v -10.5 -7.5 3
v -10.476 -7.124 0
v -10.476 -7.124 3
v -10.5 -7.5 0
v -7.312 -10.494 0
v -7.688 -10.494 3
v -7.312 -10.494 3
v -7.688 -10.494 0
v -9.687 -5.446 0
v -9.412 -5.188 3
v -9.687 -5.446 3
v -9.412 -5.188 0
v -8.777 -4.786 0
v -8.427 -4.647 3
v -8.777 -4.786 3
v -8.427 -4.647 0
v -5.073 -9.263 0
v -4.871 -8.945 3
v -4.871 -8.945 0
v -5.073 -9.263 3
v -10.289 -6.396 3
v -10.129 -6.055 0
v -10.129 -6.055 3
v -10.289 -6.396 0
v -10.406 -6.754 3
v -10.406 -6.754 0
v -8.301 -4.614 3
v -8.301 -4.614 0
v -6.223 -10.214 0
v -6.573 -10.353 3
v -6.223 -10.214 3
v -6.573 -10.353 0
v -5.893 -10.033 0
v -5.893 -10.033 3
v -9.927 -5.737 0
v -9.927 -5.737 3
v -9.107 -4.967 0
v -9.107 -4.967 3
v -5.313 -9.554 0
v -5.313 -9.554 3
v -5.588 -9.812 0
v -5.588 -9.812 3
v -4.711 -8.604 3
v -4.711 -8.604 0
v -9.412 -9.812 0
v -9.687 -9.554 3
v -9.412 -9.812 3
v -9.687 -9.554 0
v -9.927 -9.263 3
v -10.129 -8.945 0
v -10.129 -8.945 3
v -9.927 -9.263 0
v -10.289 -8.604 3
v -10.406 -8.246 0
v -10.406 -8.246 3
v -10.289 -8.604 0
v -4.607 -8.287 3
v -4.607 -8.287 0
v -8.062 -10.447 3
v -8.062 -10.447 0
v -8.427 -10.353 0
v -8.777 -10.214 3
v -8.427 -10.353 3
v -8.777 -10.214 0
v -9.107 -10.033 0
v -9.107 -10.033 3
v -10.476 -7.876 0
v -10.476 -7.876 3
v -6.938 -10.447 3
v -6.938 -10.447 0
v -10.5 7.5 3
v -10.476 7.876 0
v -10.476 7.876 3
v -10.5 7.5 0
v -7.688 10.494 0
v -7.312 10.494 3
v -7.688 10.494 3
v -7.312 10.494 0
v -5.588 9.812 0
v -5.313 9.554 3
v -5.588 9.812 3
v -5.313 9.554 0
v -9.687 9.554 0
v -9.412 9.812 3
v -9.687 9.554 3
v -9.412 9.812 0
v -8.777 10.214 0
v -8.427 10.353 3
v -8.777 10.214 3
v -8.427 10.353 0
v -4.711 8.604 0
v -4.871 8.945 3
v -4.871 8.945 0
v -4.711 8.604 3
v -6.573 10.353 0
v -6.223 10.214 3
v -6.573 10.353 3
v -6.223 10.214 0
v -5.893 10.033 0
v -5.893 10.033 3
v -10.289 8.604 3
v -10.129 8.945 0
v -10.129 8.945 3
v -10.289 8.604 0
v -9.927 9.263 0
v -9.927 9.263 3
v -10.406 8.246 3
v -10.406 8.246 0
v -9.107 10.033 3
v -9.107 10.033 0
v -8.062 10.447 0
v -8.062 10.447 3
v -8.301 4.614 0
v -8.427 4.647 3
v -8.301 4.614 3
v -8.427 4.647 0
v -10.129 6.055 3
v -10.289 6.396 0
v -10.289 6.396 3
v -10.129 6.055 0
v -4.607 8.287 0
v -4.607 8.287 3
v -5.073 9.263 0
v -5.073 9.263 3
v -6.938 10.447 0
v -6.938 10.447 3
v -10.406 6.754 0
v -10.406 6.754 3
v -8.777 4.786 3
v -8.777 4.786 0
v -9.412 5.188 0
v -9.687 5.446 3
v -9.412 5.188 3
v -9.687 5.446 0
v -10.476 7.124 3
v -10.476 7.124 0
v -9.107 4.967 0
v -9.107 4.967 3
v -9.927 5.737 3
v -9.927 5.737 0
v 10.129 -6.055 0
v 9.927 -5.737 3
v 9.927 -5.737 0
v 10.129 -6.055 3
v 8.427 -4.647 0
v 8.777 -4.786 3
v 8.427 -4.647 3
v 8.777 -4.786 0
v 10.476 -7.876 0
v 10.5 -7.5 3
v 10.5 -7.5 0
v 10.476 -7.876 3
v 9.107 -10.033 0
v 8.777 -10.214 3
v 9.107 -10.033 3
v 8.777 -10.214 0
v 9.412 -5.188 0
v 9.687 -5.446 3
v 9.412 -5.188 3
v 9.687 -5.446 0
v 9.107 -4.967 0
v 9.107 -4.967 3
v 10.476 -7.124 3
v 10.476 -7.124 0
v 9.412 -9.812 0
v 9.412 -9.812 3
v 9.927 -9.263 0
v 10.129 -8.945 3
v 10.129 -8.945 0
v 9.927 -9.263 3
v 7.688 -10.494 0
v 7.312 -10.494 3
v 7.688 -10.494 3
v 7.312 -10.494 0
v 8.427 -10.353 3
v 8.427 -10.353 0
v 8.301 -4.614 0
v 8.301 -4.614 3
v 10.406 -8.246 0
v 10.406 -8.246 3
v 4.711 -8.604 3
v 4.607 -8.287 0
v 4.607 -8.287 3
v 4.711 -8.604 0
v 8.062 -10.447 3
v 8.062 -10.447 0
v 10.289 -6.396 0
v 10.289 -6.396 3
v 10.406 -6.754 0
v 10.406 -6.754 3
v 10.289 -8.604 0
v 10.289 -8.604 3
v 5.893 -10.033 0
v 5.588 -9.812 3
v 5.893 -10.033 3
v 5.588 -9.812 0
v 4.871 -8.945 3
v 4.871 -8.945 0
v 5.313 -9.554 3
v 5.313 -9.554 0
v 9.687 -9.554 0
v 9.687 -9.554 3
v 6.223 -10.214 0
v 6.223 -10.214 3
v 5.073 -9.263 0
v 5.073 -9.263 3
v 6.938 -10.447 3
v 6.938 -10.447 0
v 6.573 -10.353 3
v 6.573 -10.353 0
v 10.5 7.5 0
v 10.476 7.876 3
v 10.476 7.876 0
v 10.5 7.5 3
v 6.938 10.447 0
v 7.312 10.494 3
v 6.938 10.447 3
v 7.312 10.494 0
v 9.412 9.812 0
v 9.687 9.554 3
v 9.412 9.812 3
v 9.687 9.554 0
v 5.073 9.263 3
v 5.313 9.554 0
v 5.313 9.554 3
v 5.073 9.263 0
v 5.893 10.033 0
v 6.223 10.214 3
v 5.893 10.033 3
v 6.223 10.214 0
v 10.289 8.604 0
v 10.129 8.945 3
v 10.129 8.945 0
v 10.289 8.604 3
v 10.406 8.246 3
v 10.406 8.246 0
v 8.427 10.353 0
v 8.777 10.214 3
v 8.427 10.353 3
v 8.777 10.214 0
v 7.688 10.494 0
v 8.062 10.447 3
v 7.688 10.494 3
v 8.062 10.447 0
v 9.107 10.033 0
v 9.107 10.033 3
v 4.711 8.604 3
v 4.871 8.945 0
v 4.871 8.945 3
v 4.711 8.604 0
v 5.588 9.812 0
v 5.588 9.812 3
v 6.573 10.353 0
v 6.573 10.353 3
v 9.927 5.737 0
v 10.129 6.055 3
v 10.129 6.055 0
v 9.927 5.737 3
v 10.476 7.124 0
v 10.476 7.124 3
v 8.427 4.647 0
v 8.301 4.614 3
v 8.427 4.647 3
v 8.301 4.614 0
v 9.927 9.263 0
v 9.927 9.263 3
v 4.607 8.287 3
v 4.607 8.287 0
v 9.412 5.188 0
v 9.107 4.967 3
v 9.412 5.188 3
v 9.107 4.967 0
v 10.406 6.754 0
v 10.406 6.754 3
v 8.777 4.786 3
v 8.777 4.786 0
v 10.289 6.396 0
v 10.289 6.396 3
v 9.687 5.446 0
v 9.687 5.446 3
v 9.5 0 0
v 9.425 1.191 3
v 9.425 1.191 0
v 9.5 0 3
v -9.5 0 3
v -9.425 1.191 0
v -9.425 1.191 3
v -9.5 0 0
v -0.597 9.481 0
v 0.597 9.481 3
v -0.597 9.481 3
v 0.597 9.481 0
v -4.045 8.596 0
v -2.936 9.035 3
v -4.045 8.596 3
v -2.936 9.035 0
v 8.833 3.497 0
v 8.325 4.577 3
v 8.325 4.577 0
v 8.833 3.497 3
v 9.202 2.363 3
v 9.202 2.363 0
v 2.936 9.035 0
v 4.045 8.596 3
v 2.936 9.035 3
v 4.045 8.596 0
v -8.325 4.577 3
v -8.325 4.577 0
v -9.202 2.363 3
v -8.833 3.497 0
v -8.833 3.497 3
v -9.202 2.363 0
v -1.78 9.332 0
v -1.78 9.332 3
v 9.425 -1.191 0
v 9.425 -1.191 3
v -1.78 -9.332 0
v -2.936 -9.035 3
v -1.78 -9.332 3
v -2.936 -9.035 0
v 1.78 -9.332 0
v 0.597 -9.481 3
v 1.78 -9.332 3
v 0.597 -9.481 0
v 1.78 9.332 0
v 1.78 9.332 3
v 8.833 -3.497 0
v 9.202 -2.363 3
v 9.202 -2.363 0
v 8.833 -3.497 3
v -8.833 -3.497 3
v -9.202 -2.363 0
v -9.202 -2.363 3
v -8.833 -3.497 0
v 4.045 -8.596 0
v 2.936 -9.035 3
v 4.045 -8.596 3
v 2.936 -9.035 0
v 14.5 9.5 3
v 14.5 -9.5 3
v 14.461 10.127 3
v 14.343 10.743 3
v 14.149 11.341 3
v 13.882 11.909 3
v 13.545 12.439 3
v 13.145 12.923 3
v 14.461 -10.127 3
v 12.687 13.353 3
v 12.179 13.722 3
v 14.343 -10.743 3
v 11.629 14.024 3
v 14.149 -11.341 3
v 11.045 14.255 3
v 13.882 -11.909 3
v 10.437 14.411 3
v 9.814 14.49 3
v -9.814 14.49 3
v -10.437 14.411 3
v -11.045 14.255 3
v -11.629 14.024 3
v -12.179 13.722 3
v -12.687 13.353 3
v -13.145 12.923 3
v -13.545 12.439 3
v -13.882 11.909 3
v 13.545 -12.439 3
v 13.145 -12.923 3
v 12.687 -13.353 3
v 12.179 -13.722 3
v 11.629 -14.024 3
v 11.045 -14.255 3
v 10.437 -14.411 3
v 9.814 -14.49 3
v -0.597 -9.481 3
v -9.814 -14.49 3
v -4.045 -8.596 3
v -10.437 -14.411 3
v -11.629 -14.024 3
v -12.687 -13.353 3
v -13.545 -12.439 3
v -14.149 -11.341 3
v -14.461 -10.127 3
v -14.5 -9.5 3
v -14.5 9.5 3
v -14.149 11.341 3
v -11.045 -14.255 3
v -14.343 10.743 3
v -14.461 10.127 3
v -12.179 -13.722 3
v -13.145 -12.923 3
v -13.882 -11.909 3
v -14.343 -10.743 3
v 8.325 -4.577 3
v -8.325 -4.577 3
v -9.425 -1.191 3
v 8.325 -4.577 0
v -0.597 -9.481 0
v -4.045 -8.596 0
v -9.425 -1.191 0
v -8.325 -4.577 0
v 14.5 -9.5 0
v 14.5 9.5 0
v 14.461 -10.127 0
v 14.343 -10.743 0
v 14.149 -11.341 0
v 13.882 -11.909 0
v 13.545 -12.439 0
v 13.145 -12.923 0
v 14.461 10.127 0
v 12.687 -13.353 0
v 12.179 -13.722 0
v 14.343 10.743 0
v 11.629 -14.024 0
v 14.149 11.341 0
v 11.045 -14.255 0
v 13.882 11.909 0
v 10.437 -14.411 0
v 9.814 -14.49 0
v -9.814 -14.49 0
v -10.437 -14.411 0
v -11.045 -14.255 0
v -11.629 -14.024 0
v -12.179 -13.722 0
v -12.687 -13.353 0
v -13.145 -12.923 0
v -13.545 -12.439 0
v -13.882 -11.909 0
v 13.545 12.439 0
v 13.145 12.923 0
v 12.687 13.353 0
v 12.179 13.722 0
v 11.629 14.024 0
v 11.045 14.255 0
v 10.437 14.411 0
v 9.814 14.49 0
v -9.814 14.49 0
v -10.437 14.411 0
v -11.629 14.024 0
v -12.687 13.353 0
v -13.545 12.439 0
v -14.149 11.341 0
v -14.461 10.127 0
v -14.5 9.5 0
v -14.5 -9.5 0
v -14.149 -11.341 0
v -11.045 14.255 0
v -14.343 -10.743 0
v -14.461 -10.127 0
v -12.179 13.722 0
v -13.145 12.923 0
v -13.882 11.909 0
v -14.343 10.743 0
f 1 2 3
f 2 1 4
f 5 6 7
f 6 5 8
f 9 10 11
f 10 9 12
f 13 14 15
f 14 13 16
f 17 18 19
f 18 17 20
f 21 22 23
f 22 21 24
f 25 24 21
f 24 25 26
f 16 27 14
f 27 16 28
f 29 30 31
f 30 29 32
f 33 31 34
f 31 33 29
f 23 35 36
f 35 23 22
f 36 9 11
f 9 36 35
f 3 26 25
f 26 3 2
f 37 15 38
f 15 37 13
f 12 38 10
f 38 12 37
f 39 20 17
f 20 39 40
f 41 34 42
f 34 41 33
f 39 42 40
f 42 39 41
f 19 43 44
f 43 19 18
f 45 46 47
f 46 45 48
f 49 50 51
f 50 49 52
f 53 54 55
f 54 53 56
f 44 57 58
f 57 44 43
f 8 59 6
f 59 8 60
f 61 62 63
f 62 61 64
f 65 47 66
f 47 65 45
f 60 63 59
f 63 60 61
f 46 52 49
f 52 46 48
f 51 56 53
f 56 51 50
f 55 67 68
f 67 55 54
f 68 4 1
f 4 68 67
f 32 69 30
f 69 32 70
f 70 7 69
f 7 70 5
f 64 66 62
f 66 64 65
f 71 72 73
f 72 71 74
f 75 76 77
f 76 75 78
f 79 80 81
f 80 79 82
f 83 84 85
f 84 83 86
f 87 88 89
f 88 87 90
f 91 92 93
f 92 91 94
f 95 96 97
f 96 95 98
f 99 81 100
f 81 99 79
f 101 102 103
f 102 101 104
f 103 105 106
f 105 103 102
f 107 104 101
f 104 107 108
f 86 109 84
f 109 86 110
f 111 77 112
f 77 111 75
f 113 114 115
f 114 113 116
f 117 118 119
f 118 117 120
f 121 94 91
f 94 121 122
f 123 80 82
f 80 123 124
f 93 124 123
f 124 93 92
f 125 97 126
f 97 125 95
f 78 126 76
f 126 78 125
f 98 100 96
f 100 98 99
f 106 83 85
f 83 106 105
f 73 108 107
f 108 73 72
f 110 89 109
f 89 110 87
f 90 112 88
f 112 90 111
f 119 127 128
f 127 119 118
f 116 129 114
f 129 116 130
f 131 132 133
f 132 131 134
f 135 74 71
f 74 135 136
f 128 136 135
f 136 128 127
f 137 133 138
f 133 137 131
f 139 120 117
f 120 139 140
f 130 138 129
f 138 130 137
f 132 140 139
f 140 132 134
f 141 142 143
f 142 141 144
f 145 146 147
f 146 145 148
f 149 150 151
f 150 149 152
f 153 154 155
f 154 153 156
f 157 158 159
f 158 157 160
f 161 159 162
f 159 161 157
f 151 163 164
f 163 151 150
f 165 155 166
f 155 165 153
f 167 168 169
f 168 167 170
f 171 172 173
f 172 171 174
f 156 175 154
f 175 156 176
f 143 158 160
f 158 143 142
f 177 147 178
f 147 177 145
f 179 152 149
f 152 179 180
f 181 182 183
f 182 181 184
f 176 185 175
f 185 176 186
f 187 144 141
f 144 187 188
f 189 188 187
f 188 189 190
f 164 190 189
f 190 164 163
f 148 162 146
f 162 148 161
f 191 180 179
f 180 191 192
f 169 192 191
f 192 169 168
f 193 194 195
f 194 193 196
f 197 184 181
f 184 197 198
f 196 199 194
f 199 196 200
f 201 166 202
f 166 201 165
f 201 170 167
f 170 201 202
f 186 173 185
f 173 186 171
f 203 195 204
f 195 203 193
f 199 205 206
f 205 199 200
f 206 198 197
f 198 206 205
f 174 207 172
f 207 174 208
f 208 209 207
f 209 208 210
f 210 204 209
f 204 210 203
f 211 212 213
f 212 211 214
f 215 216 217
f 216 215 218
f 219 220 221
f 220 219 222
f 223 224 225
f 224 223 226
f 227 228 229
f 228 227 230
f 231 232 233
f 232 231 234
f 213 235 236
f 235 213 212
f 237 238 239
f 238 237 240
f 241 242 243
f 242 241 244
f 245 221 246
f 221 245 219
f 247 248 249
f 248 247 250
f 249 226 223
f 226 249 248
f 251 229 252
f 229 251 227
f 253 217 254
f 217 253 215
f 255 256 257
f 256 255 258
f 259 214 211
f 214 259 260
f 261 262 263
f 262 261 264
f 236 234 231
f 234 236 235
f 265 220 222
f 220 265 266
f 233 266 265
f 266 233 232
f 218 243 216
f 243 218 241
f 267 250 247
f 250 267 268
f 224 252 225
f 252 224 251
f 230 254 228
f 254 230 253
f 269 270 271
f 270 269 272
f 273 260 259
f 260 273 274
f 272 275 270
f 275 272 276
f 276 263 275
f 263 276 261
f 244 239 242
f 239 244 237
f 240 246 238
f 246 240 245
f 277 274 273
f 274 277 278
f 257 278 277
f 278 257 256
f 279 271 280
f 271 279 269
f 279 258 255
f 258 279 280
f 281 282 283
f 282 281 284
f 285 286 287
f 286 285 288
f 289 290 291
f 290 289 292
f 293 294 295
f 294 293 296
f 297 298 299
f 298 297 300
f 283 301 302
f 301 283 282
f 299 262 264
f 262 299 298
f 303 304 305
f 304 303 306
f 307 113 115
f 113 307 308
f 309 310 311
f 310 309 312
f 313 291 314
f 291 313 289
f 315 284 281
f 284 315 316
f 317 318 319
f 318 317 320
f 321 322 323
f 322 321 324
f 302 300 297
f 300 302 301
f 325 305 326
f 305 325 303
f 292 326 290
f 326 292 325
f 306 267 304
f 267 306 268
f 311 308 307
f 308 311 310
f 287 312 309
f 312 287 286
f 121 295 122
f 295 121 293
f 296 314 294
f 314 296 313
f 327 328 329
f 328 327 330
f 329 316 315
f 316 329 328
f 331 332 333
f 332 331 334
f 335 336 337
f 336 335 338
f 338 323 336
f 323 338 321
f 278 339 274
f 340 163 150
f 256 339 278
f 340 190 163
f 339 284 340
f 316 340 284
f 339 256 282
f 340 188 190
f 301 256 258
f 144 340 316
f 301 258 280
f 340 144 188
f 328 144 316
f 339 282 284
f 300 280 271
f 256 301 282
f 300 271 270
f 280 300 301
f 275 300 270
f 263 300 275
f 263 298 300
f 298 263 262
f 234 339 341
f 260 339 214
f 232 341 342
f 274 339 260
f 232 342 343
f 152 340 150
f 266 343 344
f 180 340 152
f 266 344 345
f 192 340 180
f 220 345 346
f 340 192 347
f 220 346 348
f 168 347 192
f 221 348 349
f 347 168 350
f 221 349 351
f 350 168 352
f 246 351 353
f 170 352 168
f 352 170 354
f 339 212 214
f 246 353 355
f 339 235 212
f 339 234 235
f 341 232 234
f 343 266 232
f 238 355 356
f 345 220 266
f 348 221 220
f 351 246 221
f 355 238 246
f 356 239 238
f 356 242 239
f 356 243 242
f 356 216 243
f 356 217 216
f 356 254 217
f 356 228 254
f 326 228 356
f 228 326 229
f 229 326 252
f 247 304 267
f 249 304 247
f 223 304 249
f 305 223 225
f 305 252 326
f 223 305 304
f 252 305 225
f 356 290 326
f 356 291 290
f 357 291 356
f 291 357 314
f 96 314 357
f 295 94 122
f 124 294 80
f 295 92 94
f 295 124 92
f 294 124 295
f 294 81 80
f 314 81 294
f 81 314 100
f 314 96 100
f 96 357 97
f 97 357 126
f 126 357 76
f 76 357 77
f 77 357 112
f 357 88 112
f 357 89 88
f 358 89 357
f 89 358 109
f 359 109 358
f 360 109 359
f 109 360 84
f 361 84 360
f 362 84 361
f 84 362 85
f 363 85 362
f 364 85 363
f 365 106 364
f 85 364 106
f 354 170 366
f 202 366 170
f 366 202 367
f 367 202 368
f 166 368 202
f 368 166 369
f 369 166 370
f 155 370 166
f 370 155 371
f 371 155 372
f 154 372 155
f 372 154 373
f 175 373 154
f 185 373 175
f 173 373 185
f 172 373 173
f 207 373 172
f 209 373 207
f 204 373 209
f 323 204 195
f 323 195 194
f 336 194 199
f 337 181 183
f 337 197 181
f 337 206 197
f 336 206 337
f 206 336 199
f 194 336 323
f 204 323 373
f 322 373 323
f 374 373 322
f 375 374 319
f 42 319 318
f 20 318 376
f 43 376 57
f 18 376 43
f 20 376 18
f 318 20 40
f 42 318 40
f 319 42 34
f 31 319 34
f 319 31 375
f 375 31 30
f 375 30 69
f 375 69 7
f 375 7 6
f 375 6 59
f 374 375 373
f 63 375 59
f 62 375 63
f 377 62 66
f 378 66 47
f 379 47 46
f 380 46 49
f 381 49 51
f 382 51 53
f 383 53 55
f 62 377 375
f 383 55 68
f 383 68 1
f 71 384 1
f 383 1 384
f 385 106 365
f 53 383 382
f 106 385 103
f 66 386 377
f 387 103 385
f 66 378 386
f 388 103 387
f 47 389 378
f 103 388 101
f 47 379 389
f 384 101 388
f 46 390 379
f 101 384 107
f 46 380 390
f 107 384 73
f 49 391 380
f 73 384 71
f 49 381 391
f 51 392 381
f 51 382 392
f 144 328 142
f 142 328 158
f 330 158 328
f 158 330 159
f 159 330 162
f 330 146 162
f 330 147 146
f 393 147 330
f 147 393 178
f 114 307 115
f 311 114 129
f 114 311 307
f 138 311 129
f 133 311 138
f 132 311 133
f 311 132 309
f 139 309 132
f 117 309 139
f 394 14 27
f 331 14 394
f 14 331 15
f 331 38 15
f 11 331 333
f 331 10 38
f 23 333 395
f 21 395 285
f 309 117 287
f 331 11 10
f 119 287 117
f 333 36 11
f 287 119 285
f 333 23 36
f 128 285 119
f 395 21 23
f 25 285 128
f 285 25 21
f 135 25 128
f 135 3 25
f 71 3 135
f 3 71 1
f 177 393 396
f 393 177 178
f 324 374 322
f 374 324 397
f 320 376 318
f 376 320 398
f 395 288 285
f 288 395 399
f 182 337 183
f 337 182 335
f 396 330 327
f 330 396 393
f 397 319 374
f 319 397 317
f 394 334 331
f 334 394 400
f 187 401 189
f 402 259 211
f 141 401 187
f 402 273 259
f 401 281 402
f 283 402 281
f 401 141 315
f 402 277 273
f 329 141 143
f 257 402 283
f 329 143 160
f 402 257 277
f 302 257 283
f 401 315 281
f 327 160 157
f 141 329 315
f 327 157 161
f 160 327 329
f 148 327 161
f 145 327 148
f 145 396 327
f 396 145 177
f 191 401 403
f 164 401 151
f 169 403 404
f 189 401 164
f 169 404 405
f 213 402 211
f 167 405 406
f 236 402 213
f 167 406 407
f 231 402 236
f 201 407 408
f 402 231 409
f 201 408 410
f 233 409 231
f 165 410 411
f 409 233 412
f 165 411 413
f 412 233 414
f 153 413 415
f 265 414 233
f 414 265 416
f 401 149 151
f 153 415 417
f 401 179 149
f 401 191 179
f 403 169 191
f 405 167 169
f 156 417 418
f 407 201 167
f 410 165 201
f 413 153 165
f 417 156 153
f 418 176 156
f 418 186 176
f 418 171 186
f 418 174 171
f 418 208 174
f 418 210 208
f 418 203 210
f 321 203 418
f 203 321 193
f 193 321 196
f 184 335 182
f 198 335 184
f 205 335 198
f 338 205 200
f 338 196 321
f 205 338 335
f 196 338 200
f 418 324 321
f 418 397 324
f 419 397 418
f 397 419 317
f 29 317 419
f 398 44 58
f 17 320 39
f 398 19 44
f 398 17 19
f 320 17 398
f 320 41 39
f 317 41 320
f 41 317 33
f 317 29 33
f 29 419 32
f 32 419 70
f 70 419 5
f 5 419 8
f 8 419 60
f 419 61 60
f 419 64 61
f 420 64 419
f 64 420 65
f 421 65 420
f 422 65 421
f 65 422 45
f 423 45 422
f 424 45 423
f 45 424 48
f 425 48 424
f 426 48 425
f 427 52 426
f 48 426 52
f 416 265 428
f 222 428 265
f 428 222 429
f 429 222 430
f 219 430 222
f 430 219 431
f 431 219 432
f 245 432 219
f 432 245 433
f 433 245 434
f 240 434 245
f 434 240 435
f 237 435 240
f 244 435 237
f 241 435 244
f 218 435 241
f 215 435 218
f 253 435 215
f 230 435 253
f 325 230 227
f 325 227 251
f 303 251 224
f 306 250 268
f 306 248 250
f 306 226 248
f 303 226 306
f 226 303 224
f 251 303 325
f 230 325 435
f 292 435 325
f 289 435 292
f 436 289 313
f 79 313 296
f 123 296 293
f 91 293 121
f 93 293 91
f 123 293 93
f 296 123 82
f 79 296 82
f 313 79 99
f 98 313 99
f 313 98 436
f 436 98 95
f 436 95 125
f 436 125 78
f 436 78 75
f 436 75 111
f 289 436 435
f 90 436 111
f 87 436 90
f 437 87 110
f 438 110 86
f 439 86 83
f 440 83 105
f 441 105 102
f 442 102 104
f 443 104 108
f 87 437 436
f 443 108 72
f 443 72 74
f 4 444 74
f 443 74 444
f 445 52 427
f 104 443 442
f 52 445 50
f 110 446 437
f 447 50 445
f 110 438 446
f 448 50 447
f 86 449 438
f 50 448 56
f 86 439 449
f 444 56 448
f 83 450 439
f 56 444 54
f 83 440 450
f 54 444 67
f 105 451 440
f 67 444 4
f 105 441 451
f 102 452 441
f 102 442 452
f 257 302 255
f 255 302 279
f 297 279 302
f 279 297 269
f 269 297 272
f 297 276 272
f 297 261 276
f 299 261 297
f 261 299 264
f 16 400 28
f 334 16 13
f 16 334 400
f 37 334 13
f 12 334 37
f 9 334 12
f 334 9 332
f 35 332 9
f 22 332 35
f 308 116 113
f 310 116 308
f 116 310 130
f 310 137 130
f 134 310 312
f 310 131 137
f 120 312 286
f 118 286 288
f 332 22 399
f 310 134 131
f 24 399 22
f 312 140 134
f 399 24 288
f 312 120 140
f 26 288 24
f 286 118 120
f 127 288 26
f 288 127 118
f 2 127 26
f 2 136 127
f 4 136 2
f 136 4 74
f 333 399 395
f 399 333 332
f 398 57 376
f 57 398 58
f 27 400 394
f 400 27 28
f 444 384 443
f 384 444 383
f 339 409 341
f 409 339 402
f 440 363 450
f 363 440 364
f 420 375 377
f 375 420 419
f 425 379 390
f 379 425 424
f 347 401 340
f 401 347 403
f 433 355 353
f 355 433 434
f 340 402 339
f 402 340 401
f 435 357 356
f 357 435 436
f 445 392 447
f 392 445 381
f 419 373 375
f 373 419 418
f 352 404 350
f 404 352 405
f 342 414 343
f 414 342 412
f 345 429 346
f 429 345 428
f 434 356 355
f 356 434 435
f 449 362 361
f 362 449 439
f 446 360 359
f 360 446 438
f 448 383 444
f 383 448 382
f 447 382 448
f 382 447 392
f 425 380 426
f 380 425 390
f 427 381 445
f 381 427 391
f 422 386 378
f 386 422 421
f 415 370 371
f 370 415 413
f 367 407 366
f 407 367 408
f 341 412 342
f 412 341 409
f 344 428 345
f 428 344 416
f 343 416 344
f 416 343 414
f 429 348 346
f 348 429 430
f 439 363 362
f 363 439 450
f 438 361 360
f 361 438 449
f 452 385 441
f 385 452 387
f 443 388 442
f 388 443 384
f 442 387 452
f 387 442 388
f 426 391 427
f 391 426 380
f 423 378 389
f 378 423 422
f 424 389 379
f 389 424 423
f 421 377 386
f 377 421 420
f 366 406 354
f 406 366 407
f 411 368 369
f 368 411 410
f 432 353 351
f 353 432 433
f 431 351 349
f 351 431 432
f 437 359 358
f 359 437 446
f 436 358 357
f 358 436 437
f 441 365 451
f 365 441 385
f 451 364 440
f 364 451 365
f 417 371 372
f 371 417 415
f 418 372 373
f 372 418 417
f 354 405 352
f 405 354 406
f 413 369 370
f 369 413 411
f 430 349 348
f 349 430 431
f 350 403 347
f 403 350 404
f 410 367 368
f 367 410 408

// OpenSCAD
$fn = 50;


difference() {
	union() {
		hull() {
			translate(v = [-9.5000000000, 9.5000000000, 0]) {
				cylinder(h = 3, r = 5);
			}
			translate(v = [9.5000000000, 9.5000000000, 0]) {
				cylinder(h = 3, r = 5);
			}
			translate(v = [-9.5000000000, -9.5000000000, 0]) {
				cylinder(h = 3, r = 5);
			}
			translate(v = [9.5000000000, -9.5000000000, 0]) {
				cylinder(h = 3, r = 5);
			}
		}
	}
	union() {
		#translate(v = [-7.5000000000, -7.5000000000, -100.0000000000]) {
			cylinder(h = 200, r = 3.0000000000);
		}
		#translate(v = [-7.5000000000, 7.5000000000, -100.0000000000]) {
			cylinder(h = 200, r = 3.0000000000);
		}
		#translate(v = [7.5000000000, -7.5000000000, -100.0000000000]) {
			cylinder(h = 200, r = 3.0000000000);
		}
		#translate(v = [7.5000000000, 7.5000000000, -100.0000000000]) {
			cylinder(h = 200, r = 3.0000000000);
		}
		#cylinder(h = 3, r = 9.5000000000);
	}
}
